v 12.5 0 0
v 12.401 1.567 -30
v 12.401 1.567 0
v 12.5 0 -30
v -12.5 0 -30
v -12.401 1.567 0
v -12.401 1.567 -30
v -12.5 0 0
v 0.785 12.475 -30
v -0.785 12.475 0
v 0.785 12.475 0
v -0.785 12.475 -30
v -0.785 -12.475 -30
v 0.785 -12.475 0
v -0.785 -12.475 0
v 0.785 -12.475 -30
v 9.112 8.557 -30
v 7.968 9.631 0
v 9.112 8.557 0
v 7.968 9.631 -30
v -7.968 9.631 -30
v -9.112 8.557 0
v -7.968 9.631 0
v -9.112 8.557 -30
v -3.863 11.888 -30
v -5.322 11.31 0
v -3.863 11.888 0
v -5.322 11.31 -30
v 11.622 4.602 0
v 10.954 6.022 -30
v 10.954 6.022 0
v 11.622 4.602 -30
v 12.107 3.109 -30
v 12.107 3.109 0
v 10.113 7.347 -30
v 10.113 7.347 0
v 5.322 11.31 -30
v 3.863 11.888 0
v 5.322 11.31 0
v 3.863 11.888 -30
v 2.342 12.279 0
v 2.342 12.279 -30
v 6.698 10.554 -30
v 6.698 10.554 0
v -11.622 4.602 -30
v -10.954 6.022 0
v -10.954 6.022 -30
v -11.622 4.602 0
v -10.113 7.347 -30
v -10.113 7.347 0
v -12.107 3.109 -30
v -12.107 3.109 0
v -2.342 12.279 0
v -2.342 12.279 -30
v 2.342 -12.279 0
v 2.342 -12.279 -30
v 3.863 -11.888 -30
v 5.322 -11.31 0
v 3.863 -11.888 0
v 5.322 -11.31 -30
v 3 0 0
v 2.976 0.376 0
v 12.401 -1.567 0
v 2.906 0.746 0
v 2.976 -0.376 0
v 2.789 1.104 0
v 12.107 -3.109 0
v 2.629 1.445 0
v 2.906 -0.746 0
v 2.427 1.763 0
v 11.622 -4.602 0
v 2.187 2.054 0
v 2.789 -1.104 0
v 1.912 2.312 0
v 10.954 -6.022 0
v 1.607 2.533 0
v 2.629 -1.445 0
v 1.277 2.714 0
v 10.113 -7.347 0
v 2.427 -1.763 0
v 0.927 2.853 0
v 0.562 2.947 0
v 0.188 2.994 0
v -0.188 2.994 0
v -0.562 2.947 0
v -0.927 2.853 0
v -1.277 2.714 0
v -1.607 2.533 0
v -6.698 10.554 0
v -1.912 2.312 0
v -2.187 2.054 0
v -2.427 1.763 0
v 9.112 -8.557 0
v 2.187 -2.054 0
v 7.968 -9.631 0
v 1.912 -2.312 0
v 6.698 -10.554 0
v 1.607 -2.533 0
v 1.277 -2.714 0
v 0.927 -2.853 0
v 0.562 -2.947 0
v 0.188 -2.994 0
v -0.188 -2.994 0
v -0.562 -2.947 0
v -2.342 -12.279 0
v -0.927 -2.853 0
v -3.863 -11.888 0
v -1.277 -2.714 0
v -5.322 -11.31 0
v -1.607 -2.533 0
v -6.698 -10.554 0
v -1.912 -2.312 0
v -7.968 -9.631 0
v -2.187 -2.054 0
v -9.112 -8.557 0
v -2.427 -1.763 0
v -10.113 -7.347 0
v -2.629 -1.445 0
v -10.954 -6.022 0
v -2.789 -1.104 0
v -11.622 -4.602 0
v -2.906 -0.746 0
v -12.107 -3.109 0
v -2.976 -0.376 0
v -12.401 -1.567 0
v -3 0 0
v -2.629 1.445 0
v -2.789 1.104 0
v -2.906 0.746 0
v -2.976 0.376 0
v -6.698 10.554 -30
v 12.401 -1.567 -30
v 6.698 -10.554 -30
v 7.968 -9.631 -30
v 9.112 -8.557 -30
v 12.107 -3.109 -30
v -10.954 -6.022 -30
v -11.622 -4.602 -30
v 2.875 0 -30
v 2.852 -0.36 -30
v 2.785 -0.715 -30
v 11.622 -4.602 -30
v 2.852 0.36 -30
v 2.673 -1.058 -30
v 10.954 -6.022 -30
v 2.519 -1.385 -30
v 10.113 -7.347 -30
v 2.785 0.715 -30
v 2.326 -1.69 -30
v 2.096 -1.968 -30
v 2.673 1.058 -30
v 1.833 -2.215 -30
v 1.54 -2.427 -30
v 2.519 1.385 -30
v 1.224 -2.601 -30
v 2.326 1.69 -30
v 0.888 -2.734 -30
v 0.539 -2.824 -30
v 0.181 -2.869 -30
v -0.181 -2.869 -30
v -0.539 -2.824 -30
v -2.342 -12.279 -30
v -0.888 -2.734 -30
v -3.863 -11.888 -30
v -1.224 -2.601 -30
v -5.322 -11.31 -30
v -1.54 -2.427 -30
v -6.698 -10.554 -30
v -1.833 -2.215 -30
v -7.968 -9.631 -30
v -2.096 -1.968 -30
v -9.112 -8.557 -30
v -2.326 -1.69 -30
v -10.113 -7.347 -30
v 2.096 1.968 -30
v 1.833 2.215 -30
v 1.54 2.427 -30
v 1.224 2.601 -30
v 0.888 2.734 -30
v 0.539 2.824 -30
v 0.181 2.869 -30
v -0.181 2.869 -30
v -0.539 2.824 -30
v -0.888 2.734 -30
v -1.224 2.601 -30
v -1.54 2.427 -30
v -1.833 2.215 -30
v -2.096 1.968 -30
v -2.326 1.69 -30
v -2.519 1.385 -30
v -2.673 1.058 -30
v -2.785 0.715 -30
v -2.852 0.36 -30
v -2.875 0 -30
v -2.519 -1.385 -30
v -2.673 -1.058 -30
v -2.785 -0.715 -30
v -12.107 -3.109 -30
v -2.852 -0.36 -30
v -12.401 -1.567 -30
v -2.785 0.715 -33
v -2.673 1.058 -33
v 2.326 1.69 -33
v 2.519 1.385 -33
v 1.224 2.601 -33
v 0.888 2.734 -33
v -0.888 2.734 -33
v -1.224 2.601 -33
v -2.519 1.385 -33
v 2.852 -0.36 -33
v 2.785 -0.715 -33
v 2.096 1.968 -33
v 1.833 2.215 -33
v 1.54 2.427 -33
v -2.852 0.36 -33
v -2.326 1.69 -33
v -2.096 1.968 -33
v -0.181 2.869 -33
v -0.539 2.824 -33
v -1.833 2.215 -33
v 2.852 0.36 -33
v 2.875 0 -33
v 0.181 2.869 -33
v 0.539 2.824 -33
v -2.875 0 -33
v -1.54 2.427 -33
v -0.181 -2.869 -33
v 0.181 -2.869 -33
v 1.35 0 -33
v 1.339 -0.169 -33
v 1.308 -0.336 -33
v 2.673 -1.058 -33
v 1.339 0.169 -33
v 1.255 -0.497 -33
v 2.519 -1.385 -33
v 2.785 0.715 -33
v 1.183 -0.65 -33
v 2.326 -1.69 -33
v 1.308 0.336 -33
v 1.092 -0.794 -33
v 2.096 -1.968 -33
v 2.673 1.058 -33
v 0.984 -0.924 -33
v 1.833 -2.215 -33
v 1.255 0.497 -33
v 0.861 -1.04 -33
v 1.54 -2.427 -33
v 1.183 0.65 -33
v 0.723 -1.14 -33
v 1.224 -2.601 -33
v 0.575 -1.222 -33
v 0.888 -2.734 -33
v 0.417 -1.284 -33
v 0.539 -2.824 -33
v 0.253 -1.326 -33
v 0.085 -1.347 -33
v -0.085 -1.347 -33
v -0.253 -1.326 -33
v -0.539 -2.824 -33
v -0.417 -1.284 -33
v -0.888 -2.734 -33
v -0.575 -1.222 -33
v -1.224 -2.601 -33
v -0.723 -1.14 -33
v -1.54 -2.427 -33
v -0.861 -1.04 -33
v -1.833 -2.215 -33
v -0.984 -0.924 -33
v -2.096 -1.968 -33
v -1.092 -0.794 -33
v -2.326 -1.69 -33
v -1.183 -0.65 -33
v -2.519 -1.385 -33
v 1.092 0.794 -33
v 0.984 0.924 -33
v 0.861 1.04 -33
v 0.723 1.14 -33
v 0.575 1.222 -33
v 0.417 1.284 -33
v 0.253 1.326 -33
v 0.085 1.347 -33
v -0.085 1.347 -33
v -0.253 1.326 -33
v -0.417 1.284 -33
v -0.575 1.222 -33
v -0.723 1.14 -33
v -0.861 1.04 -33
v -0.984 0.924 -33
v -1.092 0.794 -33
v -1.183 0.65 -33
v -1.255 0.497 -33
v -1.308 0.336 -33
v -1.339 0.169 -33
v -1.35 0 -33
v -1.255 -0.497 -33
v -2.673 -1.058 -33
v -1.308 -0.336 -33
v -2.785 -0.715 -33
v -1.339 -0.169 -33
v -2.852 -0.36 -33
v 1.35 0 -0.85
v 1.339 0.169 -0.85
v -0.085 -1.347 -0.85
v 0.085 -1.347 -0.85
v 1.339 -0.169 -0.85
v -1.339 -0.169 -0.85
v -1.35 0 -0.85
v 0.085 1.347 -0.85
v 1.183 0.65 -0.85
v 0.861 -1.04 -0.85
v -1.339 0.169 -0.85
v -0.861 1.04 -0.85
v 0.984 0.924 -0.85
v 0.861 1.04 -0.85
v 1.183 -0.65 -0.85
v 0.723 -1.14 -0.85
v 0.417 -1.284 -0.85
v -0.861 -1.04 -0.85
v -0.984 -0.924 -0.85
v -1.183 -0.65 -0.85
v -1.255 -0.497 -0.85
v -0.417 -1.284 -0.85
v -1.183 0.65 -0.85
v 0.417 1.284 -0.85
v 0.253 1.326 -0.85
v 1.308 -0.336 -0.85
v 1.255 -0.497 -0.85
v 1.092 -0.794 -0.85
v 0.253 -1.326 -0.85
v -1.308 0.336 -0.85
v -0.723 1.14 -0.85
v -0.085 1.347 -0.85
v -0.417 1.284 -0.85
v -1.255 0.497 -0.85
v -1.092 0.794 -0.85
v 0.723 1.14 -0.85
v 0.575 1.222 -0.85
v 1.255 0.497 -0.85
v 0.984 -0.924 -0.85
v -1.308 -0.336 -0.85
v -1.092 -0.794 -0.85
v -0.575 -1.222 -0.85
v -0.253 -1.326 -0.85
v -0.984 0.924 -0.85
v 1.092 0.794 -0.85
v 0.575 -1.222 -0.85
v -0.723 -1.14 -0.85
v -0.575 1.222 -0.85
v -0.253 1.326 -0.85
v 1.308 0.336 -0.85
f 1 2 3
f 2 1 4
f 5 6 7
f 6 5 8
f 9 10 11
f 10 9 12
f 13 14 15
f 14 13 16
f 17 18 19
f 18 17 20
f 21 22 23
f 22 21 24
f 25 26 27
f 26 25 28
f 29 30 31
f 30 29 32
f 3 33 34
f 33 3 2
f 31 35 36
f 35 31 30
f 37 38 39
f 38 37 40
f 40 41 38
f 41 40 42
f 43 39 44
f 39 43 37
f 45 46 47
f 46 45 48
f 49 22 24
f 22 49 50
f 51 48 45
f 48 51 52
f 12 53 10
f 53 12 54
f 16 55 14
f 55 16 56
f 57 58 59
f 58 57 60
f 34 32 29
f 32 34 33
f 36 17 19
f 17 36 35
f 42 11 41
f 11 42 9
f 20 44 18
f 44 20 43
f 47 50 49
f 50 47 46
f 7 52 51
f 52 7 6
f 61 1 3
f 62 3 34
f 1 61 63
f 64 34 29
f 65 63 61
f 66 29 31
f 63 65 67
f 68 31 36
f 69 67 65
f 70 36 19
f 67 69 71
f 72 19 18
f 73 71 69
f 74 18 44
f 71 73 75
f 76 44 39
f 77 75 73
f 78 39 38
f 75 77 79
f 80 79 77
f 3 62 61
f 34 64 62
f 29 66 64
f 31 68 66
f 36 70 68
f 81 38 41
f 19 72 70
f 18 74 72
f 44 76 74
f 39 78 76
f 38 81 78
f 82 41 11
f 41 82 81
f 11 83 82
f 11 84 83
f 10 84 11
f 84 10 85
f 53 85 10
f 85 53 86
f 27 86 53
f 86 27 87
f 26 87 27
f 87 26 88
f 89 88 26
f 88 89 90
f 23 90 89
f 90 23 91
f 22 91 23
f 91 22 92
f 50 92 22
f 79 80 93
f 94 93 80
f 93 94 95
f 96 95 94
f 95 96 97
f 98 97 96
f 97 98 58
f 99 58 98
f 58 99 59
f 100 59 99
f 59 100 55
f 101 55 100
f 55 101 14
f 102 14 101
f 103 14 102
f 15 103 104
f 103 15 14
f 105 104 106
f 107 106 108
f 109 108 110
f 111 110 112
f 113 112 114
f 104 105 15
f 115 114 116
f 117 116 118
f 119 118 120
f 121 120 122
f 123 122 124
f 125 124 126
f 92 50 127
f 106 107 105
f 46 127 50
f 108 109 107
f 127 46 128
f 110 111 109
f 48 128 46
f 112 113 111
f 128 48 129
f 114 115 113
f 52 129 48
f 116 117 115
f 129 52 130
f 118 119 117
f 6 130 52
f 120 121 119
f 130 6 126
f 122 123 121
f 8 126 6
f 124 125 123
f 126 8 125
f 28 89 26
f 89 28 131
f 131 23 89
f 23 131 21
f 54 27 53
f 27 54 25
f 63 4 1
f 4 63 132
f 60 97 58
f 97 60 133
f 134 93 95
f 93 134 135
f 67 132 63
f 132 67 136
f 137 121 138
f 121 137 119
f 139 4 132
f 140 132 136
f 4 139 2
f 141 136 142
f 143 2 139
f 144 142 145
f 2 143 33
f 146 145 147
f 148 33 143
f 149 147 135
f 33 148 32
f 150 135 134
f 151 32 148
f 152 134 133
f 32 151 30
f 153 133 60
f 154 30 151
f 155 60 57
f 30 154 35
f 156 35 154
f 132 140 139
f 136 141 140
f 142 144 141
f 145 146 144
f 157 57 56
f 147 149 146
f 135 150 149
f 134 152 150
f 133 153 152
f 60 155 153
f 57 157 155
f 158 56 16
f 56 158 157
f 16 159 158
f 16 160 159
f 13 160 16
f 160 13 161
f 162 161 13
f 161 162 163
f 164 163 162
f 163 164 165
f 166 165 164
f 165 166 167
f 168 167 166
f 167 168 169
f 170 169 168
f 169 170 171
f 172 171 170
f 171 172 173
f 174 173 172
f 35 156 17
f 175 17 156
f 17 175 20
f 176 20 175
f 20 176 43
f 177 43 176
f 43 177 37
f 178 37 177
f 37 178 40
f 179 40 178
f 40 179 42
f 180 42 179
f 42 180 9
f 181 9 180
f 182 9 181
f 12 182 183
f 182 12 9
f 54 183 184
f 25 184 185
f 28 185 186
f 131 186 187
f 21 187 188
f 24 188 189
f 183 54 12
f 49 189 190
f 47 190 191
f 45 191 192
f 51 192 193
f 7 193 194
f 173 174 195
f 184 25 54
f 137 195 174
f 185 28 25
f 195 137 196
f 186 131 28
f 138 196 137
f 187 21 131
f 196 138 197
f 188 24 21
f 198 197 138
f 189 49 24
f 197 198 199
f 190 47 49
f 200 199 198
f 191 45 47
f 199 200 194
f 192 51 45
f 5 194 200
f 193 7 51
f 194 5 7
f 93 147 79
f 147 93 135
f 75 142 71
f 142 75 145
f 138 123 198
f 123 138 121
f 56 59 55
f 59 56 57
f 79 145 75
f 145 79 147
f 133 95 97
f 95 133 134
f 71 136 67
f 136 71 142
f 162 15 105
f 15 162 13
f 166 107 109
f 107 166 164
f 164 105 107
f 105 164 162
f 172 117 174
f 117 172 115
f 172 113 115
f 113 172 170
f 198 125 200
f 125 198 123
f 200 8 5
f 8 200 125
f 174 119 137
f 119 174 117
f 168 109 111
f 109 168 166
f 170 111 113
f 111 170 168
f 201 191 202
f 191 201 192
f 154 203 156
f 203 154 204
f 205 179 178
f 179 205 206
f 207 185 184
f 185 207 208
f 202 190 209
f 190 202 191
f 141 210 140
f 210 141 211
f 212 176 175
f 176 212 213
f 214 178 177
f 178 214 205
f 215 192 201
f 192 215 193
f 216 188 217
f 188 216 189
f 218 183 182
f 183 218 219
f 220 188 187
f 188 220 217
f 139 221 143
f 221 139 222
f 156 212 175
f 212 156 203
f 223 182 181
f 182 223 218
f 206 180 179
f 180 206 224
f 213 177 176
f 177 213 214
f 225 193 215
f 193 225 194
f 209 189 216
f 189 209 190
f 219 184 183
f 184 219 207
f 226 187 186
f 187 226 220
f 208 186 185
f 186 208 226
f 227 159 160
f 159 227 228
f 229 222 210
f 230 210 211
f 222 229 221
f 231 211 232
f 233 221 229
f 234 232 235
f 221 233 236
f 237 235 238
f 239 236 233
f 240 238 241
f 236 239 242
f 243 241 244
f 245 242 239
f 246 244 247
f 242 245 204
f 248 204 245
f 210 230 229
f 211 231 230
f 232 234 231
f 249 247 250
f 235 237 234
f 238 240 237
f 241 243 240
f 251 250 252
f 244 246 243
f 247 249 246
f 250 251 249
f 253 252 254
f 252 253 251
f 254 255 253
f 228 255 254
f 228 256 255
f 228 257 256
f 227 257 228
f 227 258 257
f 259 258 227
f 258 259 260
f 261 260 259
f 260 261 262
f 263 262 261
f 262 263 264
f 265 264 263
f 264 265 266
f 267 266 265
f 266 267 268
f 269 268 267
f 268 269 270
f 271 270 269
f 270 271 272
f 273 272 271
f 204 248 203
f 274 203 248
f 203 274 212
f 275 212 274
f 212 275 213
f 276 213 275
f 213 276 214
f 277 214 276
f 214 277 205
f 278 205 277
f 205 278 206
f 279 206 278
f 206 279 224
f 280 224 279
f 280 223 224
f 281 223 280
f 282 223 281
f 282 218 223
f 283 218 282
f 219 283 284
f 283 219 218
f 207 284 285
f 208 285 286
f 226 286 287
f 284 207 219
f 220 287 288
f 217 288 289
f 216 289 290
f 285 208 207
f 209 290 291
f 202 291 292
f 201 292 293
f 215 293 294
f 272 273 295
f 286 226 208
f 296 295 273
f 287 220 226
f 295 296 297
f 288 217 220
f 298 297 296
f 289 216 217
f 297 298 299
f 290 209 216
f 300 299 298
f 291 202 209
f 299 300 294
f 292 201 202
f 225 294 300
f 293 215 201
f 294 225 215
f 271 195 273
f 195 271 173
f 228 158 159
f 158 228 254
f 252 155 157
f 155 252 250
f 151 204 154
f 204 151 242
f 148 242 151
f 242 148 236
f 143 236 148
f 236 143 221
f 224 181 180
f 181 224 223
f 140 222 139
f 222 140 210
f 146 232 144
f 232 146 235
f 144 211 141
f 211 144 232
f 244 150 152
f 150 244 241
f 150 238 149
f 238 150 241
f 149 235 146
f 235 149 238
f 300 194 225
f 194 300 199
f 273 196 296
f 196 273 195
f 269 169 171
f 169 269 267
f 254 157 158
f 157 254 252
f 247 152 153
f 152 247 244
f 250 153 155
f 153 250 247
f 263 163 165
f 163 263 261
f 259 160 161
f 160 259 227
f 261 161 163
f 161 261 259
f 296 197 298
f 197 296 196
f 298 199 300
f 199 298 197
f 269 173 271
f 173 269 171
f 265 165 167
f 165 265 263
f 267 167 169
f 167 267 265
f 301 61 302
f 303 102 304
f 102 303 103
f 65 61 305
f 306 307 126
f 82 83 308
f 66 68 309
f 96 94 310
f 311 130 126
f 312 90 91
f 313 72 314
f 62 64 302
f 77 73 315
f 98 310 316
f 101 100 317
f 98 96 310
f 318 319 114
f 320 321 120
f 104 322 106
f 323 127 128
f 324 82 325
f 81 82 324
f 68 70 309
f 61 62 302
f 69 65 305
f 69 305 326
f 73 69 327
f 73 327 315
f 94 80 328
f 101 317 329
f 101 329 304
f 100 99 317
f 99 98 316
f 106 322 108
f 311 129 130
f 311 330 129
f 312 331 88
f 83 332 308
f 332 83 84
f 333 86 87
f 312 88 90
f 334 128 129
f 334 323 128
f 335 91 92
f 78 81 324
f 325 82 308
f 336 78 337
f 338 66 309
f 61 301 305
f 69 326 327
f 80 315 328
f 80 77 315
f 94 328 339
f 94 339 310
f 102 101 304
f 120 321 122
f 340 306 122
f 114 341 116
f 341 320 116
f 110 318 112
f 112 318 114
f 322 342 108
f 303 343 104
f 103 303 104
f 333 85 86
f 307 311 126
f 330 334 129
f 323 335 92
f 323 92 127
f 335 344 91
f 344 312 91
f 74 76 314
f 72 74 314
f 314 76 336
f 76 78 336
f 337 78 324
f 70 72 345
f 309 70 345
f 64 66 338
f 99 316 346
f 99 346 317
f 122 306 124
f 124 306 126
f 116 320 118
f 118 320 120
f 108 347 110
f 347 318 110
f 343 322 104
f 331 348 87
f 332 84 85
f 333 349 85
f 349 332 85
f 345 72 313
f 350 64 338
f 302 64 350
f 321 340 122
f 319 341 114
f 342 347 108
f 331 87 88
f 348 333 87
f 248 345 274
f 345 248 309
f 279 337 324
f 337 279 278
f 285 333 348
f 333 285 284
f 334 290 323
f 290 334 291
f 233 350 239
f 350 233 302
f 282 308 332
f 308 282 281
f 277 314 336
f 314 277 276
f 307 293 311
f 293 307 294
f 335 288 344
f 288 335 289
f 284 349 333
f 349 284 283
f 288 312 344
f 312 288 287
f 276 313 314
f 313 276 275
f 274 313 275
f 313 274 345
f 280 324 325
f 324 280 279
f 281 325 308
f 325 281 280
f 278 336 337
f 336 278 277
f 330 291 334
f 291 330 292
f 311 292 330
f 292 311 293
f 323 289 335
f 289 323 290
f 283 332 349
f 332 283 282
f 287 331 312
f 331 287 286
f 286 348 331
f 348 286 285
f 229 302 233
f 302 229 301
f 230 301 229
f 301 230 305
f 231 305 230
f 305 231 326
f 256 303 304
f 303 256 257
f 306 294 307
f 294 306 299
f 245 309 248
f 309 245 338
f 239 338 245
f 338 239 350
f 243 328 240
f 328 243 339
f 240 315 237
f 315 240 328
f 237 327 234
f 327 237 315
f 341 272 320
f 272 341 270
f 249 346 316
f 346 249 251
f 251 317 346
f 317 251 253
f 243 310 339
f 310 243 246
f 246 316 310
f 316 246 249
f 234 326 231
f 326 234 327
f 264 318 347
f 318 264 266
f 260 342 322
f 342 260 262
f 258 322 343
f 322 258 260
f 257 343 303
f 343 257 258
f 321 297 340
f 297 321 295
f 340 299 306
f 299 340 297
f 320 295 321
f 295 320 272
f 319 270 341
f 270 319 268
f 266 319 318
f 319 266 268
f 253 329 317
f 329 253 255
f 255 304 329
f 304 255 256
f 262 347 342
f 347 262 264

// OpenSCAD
$fn = 50;

difference() {
	union() {
		translate(v = [0, 0, -30.0]) {
			cylinder(h = 30, r = 12.5);
		}
		#translate(v = [0, 0, -33.0]) {
			cylinder(h = 33, r = 2.875);
		}
	}
	union() {
		translate(v = [0, 0, 0]) {
			rotate(a = [0, 0, 0]) {
				difference() {
					union() {
						translate(v = [0, 0, -33.0]) {
							cylinder(h = 33, r = 1.0);
						}
						translate(v = [0, 0, -0.85]) {
							cylinder(h = 0.85, r1 = 1.35, r2 = 3.0);
						}
						translate(v = [0, 0, -33.0]) {
							cylinder(h = 33, r = 1.35);
						}
						translate(v = [0, 0, -33.0]) {
							cylinder(h = 33, r = 1.0);
						}
					}
					union();
				}
			}
		}
	}
}
